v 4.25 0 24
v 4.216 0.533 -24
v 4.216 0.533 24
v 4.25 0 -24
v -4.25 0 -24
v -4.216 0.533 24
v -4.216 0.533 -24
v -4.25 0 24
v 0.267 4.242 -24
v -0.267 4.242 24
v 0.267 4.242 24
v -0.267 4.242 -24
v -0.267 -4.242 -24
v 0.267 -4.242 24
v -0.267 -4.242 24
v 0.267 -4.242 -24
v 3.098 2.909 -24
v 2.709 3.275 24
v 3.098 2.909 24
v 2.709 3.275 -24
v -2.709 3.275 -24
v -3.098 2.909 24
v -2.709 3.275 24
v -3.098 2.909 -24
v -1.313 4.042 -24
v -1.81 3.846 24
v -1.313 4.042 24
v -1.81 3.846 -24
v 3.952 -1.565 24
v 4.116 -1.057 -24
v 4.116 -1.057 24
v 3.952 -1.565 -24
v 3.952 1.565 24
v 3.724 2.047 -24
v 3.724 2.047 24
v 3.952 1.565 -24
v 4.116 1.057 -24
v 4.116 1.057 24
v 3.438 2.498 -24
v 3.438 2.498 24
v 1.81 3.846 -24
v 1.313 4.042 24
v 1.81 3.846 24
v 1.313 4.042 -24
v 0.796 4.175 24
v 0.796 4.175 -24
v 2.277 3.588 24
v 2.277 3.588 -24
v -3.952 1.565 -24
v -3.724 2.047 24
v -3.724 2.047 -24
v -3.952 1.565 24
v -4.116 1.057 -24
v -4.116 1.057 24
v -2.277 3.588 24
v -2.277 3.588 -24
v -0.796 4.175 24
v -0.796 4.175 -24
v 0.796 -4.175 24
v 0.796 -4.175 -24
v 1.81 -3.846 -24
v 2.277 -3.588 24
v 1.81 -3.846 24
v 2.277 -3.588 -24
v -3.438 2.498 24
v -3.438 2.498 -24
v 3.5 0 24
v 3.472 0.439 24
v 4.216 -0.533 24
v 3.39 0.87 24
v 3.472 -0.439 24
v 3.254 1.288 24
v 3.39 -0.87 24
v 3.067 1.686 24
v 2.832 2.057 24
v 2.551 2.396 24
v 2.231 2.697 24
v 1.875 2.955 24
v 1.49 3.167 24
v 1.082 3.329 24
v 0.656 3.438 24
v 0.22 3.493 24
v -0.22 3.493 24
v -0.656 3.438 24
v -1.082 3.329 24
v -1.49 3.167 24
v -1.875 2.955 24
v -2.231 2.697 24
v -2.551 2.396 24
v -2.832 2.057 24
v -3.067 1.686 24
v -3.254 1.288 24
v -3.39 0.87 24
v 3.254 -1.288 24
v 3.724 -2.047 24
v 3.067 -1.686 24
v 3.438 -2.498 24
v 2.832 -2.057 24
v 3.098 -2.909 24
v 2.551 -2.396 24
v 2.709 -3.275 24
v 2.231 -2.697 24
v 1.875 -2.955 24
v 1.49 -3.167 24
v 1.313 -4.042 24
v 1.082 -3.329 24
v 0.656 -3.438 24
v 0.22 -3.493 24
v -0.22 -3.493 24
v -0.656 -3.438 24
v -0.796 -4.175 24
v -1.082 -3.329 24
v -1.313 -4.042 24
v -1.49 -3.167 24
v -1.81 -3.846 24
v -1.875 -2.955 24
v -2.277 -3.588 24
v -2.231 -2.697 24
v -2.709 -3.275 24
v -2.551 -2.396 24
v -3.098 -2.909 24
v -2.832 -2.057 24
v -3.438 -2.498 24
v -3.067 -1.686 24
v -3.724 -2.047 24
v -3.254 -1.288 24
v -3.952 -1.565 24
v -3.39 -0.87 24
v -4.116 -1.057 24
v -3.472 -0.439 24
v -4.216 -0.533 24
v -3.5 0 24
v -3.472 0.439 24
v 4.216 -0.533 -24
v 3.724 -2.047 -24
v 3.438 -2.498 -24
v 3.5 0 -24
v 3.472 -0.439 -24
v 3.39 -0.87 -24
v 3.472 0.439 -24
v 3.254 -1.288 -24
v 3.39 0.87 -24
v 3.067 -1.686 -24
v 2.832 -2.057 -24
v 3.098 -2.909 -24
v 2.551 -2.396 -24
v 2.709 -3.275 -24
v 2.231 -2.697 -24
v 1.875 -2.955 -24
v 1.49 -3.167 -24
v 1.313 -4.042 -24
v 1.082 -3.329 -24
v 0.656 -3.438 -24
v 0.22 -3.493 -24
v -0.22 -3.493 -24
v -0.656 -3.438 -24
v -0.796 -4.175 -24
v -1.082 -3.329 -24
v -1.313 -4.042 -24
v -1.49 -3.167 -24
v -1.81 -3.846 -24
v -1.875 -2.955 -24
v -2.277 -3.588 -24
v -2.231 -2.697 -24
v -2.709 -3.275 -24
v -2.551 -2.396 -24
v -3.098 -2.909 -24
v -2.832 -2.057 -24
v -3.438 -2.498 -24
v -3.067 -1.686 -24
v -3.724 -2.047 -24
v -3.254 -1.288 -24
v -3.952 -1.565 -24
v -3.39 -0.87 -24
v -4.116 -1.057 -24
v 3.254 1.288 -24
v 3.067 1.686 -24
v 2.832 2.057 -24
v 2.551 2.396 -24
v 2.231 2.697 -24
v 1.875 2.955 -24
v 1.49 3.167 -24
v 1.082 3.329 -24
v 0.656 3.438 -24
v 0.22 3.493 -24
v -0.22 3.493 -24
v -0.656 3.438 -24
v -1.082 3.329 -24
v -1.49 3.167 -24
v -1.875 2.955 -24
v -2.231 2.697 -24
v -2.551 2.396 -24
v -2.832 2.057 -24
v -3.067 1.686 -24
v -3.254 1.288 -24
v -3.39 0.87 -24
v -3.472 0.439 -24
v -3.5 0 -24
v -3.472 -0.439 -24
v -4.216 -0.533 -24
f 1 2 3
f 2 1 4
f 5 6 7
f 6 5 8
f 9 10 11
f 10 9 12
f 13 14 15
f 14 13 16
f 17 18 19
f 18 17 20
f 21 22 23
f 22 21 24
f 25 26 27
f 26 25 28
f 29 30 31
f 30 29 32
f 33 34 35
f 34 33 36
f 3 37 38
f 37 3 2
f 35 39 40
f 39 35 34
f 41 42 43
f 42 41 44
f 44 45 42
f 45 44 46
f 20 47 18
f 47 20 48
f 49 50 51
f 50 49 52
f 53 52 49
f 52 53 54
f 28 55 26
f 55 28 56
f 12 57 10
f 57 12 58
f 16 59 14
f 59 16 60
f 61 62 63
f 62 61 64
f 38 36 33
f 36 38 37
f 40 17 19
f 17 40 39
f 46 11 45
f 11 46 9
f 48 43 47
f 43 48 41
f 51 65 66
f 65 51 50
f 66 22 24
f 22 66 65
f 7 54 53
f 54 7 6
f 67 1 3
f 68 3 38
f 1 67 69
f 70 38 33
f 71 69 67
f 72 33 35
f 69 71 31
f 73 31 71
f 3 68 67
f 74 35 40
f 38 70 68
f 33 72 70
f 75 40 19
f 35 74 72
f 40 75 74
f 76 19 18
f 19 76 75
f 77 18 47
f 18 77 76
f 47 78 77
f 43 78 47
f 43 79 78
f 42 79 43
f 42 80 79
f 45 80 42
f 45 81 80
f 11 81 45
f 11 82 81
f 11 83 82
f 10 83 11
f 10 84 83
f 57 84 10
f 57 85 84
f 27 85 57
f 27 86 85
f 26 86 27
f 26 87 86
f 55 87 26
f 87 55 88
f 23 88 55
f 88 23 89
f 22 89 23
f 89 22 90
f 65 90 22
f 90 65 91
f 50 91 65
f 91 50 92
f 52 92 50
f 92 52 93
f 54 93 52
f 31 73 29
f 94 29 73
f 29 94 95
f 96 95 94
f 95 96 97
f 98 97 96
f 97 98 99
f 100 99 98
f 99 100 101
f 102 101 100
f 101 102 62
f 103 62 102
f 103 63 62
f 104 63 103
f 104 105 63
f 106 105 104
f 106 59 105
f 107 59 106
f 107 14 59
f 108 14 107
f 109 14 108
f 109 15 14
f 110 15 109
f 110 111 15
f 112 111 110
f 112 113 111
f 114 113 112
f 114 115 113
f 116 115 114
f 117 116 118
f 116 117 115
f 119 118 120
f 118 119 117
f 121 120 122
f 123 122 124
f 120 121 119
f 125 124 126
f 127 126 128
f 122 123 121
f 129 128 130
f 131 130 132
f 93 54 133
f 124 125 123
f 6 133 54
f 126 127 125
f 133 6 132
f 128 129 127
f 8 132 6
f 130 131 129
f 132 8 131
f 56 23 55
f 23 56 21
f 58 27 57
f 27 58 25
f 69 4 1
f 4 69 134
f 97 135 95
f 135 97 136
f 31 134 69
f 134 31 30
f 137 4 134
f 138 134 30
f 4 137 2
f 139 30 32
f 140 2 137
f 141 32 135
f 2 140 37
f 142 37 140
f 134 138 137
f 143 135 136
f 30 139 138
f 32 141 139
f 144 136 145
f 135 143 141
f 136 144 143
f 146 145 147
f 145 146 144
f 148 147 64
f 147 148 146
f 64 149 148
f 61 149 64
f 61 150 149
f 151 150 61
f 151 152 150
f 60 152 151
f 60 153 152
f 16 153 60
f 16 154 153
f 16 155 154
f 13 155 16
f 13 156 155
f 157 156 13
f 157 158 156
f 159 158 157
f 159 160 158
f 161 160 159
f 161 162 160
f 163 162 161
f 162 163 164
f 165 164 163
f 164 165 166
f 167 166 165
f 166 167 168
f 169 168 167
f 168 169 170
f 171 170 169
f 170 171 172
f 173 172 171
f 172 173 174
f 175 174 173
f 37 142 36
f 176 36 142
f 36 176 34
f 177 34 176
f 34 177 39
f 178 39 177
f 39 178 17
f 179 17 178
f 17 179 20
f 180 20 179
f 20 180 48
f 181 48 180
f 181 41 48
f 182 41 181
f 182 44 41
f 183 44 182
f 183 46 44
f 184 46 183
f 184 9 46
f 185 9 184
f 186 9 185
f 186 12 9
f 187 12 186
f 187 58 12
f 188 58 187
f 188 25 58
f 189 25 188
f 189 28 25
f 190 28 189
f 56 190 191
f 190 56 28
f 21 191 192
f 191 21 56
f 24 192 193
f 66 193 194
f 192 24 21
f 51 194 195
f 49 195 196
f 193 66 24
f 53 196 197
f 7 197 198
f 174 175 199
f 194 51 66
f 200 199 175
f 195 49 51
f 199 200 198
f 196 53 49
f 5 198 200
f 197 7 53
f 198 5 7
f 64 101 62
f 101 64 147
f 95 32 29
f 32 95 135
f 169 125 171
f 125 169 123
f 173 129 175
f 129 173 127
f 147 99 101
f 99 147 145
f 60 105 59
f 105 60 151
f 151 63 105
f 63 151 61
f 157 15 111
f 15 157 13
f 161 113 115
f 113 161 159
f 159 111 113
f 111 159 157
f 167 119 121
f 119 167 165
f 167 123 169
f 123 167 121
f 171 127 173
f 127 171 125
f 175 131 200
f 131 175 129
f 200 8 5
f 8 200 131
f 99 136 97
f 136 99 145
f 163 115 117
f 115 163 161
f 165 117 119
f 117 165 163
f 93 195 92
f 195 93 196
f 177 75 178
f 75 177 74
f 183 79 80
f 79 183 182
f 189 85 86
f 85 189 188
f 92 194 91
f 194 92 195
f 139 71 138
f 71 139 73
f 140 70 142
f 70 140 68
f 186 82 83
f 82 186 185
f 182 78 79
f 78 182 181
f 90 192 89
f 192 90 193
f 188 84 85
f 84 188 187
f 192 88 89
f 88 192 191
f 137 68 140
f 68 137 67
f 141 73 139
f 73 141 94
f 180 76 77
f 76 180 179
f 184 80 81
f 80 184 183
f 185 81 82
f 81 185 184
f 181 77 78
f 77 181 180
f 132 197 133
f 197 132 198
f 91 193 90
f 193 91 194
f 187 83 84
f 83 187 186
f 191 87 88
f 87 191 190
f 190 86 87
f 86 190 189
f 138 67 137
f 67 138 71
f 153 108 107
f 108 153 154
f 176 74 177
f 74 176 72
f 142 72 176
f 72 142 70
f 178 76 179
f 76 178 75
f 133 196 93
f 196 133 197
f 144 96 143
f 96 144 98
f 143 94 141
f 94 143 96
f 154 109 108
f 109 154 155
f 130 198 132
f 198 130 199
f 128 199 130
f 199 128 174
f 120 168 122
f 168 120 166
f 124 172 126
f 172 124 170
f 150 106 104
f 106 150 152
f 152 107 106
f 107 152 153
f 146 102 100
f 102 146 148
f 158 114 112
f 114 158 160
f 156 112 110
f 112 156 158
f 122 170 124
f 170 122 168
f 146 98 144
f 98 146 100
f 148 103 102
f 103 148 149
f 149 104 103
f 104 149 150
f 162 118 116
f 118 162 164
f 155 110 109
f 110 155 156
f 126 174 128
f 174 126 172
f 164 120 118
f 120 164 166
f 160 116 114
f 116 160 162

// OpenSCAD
$fn = 50;


difference() {
	union() {
		translate(v = [0, 0, -24.0000000000]) {
			cylinder(h = 48, r = 4.2500000000);
		}
	}
	union() {
		translate(v = [0, 0, -100.0000000000]) {
			cylinder(h = 200, r = 3.5000000000);
		}
	}
}
